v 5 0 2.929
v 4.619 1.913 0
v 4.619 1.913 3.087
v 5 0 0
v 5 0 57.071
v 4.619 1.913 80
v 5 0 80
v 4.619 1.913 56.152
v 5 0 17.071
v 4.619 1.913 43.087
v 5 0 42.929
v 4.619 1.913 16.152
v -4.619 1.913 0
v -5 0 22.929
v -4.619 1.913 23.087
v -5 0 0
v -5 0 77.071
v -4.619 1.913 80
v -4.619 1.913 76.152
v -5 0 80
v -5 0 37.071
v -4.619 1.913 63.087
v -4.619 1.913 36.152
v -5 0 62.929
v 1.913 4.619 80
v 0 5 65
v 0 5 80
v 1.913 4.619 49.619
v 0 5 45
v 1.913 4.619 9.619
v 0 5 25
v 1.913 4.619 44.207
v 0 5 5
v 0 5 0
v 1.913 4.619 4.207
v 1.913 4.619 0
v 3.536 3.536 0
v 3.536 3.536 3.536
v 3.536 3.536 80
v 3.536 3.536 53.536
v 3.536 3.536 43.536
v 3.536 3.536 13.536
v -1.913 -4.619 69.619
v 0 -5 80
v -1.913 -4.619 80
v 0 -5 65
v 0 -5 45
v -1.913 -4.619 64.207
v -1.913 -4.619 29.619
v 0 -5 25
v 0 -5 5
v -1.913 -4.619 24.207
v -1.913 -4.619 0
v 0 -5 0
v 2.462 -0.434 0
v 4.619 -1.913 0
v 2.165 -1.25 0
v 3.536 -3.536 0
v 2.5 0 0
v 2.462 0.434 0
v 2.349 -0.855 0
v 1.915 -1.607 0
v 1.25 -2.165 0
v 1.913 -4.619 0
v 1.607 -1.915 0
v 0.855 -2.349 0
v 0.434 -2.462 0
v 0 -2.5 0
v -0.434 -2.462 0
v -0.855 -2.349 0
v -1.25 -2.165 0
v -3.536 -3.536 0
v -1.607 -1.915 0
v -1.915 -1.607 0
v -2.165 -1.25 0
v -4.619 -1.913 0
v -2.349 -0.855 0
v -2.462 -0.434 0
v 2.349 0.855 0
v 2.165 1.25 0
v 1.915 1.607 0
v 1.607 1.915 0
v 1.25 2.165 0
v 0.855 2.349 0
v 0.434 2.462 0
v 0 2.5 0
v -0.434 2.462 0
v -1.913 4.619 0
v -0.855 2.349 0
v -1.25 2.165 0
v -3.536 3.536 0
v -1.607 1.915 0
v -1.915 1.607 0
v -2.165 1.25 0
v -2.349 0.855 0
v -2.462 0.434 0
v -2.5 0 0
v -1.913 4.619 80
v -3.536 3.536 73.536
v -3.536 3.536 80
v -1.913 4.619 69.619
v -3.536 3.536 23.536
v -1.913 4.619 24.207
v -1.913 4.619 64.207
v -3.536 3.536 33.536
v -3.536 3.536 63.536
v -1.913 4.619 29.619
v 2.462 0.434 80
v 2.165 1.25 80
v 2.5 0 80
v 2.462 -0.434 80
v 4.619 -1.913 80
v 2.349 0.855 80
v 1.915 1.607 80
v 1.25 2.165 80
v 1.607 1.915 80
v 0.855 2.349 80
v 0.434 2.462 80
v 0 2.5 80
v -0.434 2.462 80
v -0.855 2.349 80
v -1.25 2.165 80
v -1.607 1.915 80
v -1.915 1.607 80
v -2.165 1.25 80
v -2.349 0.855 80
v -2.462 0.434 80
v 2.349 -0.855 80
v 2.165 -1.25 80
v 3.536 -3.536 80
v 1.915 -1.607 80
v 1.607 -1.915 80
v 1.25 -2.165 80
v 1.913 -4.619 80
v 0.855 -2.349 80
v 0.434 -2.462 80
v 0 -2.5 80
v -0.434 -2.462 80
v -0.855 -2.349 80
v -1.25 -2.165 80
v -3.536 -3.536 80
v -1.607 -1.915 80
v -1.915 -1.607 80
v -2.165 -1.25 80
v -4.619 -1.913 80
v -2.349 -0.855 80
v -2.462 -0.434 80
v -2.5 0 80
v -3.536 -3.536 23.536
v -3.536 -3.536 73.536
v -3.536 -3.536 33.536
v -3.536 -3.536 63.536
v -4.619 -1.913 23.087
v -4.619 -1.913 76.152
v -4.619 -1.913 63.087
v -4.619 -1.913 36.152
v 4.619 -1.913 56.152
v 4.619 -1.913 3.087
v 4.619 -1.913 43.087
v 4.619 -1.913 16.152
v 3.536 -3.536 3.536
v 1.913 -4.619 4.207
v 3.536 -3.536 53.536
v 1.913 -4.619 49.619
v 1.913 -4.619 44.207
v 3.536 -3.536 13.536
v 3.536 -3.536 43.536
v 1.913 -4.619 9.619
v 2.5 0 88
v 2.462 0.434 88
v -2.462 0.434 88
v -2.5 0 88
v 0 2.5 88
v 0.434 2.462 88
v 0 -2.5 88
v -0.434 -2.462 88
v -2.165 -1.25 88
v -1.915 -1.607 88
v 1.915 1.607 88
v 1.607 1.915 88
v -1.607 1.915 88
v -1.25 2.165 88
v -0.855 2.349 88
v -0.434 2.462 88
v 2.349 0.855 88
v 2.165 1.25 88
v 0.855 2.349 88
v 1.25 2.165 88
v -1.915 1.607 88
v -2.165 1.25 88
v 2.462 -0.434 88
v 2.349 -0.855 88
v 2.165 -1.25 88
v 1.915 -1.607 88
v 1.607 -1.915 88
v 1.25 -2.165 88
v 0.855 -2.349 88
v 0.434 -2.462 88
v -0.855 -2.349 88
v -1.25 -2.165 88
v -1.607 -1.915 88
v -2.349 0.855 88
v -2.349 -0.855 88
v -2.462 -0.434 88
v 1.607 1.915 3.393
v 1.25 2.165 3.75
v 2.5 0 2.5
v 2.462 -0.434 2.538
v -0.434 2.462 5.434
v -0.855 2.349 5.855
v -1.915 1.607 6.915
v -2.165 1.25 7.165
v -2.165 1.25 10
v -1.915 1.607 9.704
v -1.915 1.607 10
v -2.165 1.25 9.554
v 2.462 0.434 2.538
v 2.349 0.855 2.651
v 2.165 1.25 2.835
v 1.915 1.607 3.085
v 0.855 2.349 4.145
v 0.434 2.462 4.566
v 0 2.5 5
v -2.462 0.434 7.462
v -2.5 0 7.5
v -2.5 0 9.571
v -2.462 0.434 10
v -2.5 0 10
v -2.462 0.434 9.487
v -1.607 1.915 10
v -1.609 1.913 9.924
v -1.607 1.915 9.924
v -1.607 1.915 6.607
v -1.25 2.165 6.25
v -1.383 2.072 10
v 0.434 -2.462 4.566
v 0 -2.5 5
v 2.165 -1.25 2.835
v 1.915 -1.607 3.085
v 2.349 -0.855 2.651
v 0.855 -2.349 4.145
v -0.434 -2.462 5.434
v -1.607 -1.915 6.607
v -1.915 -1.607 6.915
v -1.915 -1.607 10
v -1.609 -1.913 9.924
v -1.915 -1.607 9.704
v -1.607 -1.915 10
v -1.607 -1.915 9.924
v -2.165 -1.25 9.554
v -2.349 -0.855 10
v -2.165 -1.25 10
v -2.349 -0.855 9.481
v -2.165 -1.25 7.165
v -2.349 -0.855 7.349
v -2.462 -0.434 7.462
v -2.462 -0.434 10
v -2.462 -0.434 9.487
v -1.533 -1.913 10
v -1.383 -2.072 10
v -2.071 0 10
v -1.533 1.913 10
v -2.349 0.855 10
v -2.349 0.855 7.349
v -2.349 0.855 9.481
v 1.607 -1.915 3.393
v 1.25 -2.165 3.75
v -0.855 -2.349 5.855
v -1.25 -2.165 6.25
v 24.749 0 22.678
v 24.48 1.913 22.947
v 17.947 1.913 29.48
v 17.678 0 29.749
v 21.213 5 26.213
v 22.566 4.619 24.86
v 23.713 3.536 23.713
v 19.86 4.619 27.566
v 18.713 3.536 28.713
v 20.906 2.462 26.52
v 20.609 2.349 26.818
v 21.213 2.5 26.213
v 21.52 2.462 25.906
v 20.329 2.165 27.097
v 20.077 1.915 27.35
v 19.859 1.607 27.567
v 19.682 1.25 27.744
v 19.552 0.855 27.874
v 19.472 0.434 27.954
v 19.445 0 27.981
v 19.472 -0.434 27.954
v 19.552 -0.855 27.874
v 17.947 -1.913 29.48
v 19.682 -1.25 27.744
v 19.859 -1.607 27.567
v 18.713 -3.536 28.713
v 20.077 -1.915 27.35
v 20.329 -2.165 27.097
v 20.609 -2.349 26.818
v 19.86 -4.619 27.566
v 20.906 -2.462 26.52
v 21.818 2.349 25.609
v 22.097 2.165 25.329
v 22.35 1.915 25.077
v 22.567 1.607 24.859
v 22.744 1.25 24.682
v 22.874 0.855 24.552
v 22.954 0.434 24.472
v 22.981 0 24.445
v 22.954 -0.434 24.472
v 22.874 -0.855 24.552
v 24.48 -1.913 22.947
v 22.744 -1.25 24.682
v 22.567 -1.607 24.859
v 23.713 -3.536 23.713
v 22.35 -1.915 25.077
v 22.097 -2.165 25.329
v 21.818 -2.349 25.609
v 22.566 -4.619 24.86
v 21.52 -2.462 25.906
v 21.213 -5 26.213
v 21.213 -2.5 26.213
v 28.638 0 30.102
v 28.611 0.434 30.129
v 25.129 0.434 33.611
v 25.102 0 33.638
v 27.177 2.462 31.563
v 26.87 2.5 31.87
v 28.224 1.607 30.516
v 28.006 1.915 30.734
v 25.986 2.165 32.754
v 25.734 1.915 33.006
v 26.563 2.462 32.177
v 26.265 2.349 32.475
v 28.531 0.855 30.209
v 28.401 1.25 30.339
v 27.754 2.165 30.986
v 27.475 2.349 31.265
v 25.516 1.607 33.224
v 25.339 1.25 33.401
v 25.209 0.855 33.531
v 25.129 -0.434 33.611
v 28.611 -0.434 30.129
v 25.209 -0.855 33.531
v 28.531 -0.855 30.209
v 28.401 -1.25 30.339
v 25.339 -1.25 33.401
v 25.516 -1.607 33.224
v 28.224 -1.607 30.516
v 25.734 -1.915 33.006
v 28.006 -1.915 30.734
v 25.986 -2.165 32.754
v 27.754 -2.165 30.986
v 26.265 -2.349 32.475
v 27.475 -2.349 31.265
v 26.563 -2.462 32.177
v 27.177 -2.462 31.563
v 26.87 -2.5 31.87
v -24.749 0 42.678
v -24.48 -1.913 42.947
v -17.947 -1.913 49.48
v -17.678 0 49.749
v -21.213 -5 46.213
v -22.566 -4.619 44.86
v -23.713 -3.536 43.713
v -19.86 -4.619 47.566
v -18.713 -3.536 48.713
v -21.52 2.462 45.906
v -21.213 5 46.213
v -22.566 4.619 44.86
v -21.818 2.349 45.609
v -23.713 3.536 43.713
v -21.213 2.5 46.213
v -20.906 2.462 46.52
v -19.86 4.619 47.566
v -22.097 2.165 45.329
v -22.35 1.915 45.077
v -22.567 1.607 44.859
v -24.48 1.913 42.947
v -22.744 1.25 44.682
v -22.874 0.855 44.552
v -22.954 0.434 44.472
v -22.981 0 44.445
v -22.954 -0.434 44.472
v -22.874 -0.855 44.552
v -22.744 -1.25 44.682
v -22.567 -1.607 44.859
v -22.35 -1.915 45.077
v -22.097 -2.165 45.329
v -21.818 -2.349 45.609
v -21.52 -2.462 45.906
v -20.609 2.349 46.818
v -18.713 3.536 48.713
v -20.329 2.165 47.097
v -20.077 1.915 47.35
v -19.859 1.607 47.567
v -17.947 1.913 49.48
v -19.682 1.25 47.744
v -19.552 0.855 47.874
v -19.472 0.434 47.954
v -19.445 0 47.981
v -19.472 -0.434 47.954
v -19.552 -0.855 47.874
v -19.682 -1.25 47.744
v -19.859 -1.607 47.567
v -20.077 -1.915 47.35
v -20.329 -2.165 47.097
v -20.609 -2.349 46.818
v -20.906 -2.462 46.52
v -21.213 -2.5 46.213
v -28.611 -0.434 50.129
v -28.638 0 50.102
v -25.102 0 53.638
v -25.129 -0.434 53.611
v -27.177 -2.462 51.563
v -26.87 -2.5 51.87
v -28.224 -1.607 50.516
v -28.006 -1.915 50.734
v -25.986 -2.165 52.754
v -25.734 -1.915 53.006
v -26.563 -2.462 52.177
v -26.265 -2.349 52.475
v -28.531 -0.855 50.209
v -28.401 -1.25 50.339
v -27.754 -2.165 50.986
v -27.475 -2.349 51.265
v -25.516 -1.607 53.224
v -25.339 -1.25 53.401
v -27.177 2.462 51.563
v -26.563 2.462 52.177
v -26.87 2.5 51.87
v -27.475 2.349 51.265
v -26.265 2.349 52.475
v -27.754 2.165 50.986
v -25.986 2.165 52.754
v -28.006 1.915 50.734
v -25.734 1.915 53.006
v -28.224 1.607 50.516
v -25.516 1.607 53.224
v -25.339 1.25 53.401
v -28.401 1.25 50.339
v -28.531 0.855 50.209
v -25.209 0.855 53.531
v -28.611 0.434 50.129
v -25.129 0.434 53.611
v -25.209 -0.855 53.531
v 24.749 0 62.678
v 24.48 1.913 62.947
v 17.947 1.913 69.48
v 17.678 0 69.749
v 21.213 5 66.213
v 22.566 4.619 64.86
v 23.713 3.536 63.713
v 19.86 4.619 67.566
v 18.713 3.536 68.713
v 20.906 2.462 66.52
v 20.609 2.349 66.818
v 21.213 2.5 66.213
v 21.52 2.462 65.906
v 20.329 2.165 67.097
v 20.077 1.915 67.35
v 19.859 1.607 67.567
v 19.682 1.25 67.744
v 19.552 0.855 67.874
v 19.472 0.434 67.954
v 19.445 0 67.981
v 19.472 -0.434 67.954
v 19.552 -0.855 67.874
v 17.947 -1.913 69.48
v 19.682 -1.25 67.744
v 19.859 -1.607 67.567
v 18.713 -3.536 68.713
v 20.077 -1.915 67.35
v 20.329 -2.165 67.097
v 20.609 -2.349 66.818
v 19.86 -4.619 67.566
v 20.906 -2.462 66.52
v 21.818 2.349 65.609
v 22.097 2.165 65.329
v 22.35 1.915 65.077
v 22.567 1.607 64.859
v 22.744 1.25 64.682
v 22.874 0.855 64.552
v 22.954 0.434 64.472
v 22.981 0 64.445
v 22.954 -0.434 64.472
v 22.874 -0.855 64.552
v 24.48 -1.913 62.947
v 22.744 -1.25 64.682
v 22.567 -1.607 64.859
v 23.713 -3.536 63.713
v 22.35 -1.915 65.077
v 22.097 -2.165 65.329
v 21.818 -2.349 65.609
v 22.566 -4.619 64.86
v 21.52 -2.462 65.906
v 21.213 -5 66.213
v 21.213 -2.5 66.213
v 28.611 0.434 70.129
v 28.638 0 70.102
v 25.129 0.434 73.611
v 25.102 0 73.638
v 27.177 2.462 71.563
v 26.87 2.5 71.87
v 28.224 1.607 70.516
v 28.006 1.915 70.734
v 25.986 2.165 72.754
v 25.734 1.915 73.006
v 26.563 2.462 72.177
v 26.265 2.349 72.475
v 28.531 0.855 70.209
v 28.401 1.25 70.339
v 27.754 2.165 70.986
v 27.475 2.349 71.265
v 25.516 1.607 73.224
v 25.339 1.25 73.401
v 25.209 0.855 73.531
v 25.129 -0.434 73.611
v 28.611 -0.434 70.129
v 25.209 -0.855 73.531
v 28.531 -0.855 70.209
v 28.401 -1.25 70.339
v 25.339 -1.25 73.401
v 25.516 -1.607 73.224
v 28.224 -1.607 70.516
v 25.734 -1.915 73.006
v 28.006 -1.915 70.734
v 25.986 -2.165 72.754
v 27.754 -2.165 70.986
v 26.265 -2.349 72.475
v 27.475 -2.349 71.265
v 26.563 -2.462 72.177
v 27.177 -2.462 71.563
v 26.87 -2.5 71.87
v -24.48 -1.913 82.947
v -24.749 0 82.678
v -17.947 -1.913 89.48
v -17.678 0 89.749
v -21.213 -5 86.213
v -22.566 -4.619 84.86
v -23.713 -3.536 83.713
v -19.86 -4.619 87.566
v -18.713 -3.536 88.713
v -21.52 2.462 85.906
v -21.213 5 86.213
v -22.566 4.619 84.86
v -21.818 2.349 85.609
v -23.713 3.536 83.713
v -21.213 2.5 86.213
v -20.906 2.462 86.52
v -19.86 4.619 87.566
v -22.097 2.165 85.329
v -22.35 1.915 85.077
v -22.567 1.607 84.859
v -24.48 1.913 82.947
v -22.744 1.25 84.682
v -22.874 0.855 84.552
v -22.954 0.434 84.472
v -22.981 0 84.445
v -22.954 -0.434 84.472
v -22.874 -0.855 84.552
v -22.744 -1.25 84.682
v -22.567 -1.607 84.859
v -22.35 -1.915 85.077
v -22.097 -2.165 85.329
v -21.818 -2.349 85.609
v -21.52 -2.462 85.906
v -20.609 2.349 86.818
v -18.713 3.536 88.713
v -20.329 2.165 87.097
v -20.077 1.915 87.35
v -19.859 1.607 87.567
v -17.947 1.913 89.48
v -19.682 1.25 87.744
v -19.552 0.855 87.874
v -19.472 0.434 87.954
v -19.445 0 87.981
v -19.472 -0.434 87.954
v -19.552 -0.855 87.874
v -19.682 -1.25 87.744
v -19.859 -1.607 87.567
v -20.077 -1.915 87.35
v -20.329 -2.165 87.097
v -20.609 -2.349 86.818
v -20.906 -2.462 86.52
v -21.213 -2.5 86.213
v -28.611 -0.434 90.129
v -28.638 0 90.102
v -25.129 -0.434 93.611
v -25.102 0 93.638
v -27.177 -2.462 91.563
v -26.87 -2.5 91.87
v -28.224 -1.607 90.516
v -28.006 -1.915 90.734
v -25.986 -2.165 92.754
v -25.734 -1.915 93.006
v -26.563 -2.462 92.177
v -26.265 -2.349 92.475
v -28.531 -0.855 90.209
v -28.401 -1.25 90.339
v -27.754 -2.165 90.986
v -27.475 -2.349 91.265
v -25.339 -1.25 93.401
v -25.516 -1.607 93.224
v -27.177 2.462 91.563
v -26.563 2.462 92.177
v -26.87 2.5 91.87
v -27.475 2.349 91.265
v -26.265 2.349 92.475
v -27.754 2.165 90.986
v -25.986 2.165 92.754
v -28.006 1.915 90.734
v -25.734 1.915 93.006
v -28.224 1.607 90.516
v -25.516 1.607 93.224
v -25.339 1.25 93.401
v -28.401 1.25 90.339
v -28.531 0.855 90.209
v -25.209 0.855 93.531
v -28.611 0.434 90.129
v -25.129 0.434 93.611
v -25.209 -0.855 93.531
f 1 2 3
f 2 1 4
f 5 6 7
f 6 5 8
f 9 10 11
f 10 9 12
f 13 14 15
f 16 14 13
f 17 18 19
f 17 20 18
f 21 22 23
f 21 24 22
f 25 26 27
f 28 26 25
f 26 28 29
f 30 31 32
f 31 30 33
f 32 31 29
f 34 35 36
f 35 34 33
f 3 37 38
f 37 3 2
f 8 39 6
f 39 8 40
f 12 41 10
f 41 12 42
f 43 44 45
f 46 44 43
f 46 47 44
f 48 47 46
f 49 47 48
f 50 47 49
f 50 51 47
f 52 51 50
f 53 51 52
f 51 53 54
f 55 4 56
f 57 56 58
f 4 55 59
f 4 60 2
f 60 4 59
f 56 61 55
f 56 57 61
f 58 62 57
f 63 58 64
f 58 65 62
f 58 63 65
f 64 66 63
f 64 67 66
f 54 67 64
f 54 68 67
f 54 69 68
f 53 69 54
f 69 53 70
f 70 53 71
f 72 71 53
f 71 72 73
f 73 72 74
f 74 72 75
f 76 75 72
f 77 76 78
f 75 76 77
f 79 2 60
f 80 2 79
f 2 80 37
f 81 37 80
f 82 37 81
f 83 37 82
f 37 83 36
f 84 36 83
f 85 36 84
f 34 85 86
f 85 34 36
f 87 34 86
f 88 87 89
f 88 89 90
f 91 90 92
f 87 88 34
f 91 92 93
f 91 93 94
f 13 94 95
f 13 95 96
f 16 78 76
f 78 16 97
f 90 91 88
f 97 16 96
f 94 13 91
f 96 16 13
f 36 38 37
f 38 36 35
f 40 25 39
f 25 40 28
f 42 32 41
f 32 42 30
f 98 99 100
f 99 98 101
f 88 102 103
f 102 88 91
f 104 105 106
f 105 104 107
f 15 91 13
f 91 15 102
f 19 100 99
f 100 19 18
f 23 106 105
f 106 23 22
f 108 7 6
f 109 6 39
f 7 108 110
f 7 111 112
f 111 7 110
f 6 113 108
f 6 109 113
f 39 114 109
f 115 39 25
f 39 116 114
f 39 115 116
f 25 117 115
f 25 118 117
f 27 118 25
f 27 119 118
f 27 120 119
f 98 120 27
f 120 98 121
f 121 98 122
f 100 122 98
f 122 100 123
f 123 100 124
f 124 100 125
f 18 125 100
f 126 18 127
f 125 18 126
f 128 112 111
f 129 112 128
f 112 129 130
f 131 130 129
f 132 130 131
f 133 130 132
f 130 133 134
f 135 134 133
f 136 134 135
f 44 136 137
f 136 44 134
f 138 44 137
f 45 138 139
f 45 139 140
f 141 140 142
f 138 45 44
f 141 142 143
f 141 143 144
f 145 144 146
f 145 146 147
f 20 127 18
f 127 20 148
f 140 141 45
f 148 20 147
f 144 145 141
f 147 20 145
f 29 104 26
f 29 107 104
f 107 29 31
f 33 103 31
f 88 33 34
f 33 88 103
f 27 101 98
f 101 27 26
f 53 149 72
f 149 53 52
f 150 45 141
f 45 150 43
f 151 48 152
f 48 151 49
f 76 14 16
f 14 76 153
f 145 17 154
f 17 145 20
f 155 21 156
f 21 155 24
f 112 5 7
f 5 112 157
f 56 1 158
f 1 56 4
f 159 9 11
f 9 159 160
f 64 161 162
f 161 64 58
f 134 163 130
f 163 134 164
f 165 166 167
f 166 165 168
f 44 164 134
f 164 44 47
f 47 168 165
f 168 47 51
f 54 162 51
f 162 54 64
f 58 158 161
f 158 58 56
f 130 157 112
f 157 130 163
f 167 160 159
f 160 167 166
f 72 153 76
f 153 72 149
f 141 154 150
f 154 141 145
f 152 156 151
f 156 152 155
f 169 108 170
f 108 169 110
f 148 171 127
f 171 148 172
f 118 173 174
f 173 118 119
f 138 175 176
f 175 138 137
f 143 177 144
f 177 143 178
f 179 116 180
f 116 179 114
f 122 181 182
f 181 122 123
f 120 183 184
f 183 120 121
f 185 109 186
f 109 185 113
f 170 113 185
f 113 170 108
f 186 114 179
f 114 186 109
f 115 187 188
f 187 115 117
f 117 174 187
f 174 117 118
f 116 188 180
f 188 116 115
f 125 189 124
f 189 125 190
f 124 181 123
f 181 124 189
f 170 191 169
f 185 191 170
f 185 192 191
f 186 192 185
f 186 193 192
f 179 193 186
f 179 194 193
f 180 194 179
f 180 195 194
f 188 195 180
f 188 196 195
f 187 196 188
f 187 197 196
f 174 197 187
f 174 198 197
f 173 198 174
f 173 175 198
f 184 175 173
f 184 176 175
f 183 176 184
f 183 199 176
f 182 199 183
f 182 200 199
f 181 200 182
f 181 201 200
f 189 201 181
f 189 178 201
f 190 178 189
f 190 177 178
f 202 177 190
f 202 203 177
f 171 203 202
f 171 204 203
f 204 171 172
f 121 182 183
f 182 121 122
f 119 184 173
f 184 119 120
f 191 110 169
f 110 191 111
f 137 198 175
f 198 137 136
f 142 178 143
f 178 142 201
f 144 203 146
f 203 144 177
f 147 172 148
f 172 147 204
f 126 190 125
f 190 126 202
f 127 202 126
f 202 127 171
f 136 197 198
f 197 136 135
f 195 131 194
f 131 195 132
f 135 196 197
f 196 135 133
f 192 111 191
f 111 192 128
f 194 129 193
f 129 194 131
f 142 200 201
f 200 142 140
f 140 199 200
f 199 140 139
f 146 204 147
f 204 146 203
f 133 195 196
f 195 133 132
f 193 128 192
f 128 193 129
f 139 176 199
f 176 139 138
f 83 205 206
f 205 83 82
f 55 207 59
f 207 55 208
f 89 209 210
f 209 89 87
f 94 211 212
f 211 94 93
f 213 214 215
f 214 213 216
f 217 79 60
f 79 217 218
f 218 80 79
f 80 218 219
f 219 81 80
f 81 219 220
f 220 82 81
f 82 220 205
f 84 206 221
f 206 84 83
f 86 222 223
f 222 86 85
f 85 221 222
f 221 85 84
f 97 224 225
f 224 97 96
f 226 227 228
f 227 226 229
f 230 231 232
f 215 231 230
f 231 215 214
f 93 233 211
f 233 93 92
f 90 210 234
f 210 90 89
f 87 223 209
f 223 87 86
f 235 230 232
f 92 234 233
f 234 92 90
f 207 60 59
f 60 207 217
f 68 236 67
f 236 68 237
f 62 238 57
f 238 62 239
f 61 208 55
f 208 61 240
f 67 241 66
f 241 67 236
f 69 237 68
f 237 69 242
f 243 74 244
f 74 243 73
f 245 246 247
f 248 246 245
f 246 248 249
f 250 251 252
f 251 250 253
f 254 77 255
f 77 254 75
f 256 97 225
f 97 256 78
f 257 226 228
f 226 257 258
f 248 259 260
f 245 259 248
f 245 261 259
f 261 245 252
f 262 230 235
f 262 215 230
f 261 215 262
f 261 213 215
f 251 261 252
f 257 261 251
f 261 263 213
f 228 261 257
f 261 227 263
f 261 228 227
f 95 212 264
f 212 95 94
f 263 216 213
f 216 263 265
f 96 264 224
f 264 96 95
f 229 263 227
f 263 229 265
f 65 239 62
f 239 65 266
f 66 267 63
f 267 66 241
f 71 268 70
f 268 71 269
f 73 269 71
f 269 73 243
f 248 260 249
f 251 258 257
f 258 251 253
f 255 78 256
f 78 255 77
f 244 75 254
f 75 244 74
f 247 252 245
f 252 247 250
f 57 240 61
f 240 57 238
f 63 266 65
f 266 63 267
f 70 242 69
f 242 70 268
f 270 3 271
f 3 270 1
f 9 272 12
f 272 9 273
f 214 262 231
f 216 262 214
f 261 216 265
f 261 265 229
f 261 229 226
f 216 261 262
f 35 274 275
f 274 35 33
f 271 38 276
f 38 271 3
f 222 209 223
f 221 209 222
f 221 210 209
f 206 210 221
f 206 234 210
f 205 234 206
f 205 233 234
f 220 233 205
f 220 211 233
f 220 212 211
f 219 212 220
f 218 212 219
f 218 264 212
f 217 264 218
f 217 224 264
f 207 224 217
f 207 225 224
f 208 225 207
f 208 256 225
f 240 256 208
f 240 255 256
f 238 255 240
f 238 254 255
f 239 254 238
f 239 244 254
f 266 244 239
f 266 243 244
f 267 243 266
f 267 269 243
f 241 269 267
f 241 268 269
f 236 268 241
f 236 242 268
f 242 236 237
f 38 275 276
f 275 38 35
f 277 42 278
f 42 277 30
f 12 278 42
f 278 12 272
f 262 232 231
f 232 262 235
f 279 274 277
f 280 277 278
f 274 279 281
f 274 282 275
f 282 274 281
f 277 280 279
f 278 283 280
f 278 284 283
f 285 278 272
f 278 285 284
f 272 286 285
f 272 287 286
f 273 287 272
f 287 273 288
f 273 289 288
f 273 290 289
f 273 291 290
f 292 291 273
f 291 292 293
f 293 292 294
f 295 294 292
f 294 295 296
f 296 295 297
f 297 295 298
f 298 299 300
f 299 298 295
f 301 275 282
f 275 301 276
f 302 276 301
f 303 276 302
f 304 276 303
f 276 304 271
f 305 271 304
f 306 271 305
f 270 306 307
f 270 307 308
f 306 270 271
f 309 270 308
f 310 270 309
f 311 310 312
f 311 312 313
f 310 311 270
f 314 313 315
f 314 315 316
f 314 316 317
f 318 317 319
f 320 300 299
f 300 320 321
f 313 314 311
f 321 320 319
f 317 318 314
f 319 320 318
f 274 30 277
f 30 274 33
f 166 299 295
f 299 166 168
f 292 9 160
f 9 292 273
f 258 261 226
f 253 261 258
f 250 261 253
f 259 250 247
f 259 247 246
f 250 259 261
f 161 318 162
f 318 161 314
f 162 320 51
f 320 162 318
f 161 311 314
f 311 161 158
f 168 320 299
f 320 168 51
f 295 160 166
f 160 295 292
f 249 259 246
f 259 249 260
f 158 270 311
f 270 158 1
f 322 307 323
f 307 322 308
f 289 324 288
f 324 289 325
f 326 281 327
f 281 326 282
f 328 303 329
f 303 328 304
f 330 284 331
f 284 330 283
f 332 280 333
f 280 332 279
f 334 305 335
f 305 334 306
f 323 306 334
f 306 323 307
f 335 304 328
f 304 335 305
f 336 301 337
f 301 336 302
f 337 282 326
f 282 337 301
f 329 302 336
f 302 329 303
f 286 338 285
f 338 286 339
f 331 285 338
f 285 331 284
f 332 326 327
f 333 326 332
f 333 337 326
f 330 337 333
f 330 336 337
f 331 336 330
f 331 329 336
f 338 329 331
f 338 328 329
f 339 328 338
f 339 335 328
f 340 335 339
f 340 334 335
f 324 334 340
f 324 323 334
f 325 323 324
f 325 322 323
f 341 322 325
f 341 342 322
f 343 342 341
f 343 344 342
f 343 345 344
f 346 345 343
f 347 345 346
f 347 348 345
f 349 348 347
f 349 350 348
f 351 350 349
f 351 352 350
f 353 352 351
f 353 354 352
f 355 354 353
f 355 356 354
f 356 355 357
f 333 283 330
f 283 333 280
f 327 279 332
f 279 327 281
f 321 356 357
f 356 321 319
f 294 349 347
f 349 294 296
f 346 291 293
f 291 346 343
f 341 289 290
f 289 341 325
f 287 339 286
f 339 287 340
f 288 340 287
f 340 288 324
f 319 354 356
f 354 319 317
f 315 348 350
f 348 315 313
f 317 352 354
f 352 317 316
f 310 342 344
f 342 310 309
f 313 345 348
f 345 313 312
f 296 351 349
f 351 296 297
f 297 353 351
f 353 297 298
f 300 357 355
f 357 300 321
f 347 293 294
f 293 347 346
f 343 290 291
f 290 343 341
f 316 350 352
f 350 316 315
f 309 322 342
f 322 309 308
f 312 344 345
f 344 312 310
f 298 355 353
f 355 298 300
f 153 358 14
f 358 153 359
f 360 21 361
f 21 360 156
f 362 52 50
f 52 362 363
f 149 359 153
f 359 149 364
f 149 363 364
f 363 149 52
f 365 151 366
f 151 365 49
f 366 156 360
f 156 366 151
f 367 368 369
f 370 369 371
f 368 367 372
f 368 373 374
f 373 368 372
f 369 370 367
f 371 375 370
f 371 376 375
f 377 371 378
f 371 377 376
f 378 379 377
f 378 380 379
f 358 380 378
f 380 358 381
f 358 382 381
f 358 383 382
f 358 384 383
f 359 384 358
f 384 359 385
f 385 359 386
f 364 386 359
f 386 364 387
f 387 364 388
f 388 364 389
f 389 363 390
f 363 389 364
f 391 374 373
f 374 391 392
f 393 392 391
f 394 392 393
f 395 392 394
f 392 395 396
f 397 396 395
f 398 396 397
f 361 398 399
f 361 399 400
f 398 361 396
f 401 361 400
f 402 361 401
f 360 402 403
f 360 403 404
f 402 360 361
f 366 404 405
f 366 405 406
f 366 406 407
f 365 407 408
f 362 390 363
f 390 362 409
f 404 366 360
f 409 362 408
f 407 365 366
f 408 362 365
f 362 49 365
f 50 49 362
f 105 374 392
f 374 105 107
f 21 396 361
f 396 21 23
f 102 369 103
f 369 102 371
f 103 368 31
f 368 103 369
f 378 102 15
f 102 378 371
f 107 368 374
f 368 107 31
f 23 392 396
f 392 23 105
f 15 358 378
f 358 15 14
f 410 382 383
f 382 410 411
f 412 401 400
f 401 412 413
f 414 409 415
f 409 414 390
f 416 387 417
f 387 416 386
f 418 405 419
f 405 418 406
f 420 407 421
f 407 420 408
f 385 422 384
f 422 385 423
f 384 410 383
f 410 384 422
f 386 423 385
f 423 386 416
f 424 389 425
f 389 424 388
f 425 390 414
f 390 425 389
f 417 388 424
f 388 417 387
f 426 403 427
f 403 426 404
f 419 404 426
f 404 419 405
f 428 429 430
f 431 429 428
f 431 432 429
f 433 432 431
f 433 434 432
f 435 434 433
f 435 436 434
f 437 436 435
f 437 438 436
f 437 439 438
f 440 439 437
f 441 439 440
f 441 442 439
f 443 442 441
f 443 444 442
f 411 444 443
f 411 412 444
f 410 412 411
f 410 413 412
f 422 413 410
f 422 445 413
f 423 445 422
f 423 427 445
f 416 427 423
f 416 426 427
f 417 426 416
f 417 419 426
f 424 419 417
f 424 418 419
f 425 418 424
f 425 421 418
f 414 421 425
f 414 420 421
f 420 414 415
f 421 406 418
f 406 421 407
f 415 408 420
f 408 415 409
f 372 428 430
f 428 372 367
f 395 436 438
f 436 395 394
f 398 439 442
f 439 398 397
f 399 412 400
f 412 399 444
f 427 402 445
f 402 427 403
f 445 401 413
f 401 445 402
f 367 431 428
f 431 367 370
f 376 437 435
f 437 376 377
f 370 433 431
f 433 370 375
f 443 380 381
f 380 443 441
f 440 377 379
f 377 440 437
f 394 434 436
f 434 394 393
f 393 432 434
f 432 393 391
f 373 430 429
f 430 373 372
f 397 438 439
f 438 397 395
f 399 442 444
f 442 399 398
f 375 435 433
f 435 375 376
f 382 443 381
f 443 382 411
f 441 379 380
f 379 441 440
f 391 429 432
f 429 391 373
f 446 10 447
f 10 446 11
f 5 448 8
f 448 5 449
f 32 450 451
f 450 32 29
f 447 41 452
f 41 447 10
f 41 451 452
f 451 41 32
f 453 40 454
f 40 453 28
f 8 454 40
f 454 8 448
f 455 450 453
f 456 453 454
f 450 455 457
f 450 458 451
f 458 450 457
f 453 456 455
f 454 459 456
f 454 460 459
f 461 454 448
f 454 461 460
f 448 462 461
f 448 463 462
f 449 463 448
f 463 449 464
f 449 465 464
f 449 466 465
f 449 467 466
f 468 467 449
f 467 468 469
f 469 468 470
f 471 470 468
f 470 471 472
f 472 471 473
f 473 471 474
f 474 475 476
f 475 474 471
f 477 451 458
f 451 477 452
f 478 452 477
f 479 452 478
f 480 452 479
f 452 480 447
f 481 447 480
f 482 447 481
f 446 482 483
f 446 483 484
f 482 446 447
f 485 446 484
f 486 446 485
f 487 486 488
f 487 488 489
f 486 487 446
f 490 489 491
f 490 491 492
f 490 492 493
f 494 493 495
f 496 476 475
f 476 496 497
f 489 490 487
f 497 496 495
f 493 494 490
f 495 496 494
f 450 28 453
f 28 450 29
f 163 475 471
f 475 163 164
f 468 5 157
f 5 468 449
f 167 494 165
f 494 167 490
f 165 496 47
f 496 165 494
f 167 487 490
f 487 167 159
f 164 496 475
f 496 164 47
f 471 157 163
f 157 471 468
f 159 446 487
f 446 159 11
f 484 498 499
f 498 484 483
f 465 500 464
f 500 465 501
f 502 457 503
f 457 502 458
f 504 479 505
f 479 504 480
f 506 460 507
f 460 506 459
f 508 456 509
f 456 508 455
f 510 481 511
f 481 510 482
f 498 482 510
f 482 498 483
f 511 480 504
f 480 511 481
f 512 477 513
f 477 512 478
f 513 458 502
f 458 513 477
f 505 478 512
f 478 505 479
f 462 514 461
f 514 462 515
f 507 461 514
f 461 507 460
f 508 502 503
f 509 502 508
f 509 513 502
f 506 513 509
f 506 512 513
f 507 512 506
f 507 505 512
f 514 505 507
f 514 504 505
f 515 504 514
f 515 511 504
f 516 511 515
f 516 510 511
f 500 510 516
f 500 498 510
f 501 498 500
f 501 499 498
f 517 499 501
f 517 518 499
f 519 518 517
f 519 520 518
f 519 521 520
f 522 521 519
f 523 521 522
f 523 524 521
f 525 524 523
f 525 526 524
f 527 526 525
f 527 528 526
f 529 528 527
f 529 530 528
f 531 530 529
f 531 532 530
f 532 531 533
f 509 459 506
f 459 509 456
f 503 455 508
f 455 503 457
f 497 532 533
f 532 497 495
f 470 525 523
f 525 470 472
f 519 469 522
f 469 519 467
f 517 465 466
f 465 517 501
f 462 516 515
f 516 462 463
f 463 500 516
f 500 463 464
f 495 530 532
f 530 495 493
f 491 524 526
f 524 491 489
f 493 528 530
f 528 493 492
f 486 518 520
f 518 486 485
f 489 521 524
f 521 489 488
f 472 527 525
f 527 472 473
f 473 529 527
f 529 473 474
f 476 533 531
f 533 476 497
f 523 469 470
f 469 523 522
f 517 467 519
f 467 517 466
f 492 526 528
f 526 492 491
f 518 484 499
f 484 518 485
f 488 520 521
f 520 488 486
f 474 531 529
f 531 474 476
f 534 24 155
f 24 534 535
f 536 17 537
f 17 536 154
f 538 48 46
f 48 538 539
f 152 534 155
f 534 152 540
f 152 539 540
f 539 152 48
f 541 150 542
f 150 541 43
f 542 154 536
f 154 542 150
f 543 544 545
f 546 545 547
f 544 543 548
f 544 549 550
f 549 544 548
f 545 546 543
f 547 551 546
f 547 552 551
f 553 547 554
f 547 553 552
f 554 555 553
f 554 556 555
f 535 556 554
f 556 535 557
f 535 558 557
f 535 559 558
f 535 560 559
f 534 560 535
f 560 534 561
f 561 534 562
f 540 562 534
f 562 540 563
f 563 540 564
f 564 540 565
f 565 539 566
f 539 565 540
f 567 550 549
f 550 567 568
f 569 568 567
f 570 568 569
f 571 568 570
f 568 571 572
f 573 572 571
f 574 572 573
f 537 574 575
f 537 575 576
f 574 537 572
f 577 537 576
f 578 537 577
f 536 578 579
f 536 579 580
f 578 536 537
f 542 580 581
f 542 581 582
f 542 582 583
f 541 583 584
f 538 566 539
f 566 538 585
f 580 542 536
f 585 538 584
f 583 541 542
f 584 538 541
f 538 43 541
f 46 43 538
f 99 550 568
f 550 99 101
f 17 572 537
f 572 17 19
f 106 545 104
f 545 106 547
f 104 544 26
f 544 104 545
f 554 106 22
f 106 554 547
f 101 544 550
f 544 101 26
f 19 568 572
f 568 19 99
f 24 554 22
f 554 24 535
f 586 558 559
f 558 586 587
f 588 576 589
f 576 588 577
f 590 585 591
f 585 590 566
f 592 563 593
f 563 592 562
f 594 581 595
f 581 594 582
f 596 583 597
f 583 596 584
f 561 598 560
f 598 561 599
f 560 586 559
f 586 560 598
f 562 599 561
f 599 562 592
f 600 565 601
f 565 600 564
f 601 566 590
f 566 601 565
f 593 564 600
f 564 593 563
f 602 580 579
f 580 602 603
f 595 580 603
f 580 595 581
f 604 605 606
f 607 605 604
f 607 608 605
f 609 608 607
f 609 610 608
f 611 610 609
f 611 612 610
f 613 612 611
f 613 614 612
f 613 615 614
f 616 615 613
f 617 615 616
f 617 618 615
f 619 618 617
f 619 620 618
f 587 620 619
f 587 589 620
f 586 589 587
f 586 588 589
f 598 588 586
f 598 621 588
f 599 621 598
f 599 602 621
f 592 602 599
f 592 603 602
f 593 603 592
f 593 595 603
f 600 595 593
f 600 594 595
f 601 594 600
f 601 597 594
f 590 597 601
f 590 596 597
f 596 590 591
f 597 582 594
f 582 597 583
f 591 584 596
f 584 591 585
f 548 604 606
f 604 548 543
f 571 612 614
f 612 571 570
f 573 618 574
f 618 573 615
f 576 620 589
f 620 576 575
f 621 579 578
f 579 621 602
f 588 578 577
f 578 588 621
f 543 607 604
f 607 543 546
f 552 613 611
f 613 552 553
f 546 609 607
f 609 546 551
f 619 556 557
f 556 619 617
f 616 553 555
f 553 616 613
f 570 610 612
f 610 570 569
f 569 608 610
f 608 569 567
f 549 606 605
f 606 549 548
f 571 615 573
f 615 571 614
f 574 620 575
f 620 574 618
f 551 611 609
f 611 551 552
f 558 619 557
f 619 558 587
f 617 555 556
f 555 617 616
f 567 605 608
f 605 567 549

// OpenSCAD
union() {
	union() {
		union() {
			union() {
				difference() {
					union() {
						cylinder(h = 80, r = 5);
						translate(v = [0, 0, 80]) {
							cylinder($fn = 36, h = 8, r = 2.5000000000);
						}
					}
					cylinder($fn = 36, h = 10, r = 2.5000000000);
				}
				translate(v = [0, 0, 5]) {
					rotate(a = 0, v = [0, 0, 1]) {
						rotate(a = 45, v = [0, 1, 0]) {
							union() {
								cylinder(h = 30, r = 5);
								translate(v = [0, 0, 30]) {
									cylinder($fn = 36, h = 8, r = 2.5000000000);
								}
							}
						}
					}
				}
			}
			translate(v = [0, 0, 25]) {
				rotate(a = 180, v = [0, 0, 1]) {
					rotate(a = 45, v = [0, 1, 0]) {
						union() {
							cylinder(h = 30, r = 5);
							translate(v = [0, 0, 30]) {
								cylinder($fn = 36, h = 8, r = 2.5000000000);
							}
						}
					}
				}
			}
		}
		translate(v = [0, 0, 45]) {
			rotate(a = 0, v = [0, 0, 1]) {
				rotate(a = 45, v = [0, 1, 0]) {
					union() {
						cylinder(h = 30, r = 5);
						translate(v = [0, 0, 30]) {
							cylinder($fn = 36, h = 8, r = 2.5000000000);
						}
					}
				}
			}
		}
	}
	translate(v = [0, 0, 65]) {
		rotate(a = 180, v = [0, 0, 1]) {
			rotate(a = 45, v = [0, 1, 0]) {
				union() {
					cylinder(h = 30, r = 5);
					translate(v = [0, 0, 30]) {
						cylinder($fn = 36, h = 8, r = 2.5000000000);
					}
				}
			}
		}
	}
}
